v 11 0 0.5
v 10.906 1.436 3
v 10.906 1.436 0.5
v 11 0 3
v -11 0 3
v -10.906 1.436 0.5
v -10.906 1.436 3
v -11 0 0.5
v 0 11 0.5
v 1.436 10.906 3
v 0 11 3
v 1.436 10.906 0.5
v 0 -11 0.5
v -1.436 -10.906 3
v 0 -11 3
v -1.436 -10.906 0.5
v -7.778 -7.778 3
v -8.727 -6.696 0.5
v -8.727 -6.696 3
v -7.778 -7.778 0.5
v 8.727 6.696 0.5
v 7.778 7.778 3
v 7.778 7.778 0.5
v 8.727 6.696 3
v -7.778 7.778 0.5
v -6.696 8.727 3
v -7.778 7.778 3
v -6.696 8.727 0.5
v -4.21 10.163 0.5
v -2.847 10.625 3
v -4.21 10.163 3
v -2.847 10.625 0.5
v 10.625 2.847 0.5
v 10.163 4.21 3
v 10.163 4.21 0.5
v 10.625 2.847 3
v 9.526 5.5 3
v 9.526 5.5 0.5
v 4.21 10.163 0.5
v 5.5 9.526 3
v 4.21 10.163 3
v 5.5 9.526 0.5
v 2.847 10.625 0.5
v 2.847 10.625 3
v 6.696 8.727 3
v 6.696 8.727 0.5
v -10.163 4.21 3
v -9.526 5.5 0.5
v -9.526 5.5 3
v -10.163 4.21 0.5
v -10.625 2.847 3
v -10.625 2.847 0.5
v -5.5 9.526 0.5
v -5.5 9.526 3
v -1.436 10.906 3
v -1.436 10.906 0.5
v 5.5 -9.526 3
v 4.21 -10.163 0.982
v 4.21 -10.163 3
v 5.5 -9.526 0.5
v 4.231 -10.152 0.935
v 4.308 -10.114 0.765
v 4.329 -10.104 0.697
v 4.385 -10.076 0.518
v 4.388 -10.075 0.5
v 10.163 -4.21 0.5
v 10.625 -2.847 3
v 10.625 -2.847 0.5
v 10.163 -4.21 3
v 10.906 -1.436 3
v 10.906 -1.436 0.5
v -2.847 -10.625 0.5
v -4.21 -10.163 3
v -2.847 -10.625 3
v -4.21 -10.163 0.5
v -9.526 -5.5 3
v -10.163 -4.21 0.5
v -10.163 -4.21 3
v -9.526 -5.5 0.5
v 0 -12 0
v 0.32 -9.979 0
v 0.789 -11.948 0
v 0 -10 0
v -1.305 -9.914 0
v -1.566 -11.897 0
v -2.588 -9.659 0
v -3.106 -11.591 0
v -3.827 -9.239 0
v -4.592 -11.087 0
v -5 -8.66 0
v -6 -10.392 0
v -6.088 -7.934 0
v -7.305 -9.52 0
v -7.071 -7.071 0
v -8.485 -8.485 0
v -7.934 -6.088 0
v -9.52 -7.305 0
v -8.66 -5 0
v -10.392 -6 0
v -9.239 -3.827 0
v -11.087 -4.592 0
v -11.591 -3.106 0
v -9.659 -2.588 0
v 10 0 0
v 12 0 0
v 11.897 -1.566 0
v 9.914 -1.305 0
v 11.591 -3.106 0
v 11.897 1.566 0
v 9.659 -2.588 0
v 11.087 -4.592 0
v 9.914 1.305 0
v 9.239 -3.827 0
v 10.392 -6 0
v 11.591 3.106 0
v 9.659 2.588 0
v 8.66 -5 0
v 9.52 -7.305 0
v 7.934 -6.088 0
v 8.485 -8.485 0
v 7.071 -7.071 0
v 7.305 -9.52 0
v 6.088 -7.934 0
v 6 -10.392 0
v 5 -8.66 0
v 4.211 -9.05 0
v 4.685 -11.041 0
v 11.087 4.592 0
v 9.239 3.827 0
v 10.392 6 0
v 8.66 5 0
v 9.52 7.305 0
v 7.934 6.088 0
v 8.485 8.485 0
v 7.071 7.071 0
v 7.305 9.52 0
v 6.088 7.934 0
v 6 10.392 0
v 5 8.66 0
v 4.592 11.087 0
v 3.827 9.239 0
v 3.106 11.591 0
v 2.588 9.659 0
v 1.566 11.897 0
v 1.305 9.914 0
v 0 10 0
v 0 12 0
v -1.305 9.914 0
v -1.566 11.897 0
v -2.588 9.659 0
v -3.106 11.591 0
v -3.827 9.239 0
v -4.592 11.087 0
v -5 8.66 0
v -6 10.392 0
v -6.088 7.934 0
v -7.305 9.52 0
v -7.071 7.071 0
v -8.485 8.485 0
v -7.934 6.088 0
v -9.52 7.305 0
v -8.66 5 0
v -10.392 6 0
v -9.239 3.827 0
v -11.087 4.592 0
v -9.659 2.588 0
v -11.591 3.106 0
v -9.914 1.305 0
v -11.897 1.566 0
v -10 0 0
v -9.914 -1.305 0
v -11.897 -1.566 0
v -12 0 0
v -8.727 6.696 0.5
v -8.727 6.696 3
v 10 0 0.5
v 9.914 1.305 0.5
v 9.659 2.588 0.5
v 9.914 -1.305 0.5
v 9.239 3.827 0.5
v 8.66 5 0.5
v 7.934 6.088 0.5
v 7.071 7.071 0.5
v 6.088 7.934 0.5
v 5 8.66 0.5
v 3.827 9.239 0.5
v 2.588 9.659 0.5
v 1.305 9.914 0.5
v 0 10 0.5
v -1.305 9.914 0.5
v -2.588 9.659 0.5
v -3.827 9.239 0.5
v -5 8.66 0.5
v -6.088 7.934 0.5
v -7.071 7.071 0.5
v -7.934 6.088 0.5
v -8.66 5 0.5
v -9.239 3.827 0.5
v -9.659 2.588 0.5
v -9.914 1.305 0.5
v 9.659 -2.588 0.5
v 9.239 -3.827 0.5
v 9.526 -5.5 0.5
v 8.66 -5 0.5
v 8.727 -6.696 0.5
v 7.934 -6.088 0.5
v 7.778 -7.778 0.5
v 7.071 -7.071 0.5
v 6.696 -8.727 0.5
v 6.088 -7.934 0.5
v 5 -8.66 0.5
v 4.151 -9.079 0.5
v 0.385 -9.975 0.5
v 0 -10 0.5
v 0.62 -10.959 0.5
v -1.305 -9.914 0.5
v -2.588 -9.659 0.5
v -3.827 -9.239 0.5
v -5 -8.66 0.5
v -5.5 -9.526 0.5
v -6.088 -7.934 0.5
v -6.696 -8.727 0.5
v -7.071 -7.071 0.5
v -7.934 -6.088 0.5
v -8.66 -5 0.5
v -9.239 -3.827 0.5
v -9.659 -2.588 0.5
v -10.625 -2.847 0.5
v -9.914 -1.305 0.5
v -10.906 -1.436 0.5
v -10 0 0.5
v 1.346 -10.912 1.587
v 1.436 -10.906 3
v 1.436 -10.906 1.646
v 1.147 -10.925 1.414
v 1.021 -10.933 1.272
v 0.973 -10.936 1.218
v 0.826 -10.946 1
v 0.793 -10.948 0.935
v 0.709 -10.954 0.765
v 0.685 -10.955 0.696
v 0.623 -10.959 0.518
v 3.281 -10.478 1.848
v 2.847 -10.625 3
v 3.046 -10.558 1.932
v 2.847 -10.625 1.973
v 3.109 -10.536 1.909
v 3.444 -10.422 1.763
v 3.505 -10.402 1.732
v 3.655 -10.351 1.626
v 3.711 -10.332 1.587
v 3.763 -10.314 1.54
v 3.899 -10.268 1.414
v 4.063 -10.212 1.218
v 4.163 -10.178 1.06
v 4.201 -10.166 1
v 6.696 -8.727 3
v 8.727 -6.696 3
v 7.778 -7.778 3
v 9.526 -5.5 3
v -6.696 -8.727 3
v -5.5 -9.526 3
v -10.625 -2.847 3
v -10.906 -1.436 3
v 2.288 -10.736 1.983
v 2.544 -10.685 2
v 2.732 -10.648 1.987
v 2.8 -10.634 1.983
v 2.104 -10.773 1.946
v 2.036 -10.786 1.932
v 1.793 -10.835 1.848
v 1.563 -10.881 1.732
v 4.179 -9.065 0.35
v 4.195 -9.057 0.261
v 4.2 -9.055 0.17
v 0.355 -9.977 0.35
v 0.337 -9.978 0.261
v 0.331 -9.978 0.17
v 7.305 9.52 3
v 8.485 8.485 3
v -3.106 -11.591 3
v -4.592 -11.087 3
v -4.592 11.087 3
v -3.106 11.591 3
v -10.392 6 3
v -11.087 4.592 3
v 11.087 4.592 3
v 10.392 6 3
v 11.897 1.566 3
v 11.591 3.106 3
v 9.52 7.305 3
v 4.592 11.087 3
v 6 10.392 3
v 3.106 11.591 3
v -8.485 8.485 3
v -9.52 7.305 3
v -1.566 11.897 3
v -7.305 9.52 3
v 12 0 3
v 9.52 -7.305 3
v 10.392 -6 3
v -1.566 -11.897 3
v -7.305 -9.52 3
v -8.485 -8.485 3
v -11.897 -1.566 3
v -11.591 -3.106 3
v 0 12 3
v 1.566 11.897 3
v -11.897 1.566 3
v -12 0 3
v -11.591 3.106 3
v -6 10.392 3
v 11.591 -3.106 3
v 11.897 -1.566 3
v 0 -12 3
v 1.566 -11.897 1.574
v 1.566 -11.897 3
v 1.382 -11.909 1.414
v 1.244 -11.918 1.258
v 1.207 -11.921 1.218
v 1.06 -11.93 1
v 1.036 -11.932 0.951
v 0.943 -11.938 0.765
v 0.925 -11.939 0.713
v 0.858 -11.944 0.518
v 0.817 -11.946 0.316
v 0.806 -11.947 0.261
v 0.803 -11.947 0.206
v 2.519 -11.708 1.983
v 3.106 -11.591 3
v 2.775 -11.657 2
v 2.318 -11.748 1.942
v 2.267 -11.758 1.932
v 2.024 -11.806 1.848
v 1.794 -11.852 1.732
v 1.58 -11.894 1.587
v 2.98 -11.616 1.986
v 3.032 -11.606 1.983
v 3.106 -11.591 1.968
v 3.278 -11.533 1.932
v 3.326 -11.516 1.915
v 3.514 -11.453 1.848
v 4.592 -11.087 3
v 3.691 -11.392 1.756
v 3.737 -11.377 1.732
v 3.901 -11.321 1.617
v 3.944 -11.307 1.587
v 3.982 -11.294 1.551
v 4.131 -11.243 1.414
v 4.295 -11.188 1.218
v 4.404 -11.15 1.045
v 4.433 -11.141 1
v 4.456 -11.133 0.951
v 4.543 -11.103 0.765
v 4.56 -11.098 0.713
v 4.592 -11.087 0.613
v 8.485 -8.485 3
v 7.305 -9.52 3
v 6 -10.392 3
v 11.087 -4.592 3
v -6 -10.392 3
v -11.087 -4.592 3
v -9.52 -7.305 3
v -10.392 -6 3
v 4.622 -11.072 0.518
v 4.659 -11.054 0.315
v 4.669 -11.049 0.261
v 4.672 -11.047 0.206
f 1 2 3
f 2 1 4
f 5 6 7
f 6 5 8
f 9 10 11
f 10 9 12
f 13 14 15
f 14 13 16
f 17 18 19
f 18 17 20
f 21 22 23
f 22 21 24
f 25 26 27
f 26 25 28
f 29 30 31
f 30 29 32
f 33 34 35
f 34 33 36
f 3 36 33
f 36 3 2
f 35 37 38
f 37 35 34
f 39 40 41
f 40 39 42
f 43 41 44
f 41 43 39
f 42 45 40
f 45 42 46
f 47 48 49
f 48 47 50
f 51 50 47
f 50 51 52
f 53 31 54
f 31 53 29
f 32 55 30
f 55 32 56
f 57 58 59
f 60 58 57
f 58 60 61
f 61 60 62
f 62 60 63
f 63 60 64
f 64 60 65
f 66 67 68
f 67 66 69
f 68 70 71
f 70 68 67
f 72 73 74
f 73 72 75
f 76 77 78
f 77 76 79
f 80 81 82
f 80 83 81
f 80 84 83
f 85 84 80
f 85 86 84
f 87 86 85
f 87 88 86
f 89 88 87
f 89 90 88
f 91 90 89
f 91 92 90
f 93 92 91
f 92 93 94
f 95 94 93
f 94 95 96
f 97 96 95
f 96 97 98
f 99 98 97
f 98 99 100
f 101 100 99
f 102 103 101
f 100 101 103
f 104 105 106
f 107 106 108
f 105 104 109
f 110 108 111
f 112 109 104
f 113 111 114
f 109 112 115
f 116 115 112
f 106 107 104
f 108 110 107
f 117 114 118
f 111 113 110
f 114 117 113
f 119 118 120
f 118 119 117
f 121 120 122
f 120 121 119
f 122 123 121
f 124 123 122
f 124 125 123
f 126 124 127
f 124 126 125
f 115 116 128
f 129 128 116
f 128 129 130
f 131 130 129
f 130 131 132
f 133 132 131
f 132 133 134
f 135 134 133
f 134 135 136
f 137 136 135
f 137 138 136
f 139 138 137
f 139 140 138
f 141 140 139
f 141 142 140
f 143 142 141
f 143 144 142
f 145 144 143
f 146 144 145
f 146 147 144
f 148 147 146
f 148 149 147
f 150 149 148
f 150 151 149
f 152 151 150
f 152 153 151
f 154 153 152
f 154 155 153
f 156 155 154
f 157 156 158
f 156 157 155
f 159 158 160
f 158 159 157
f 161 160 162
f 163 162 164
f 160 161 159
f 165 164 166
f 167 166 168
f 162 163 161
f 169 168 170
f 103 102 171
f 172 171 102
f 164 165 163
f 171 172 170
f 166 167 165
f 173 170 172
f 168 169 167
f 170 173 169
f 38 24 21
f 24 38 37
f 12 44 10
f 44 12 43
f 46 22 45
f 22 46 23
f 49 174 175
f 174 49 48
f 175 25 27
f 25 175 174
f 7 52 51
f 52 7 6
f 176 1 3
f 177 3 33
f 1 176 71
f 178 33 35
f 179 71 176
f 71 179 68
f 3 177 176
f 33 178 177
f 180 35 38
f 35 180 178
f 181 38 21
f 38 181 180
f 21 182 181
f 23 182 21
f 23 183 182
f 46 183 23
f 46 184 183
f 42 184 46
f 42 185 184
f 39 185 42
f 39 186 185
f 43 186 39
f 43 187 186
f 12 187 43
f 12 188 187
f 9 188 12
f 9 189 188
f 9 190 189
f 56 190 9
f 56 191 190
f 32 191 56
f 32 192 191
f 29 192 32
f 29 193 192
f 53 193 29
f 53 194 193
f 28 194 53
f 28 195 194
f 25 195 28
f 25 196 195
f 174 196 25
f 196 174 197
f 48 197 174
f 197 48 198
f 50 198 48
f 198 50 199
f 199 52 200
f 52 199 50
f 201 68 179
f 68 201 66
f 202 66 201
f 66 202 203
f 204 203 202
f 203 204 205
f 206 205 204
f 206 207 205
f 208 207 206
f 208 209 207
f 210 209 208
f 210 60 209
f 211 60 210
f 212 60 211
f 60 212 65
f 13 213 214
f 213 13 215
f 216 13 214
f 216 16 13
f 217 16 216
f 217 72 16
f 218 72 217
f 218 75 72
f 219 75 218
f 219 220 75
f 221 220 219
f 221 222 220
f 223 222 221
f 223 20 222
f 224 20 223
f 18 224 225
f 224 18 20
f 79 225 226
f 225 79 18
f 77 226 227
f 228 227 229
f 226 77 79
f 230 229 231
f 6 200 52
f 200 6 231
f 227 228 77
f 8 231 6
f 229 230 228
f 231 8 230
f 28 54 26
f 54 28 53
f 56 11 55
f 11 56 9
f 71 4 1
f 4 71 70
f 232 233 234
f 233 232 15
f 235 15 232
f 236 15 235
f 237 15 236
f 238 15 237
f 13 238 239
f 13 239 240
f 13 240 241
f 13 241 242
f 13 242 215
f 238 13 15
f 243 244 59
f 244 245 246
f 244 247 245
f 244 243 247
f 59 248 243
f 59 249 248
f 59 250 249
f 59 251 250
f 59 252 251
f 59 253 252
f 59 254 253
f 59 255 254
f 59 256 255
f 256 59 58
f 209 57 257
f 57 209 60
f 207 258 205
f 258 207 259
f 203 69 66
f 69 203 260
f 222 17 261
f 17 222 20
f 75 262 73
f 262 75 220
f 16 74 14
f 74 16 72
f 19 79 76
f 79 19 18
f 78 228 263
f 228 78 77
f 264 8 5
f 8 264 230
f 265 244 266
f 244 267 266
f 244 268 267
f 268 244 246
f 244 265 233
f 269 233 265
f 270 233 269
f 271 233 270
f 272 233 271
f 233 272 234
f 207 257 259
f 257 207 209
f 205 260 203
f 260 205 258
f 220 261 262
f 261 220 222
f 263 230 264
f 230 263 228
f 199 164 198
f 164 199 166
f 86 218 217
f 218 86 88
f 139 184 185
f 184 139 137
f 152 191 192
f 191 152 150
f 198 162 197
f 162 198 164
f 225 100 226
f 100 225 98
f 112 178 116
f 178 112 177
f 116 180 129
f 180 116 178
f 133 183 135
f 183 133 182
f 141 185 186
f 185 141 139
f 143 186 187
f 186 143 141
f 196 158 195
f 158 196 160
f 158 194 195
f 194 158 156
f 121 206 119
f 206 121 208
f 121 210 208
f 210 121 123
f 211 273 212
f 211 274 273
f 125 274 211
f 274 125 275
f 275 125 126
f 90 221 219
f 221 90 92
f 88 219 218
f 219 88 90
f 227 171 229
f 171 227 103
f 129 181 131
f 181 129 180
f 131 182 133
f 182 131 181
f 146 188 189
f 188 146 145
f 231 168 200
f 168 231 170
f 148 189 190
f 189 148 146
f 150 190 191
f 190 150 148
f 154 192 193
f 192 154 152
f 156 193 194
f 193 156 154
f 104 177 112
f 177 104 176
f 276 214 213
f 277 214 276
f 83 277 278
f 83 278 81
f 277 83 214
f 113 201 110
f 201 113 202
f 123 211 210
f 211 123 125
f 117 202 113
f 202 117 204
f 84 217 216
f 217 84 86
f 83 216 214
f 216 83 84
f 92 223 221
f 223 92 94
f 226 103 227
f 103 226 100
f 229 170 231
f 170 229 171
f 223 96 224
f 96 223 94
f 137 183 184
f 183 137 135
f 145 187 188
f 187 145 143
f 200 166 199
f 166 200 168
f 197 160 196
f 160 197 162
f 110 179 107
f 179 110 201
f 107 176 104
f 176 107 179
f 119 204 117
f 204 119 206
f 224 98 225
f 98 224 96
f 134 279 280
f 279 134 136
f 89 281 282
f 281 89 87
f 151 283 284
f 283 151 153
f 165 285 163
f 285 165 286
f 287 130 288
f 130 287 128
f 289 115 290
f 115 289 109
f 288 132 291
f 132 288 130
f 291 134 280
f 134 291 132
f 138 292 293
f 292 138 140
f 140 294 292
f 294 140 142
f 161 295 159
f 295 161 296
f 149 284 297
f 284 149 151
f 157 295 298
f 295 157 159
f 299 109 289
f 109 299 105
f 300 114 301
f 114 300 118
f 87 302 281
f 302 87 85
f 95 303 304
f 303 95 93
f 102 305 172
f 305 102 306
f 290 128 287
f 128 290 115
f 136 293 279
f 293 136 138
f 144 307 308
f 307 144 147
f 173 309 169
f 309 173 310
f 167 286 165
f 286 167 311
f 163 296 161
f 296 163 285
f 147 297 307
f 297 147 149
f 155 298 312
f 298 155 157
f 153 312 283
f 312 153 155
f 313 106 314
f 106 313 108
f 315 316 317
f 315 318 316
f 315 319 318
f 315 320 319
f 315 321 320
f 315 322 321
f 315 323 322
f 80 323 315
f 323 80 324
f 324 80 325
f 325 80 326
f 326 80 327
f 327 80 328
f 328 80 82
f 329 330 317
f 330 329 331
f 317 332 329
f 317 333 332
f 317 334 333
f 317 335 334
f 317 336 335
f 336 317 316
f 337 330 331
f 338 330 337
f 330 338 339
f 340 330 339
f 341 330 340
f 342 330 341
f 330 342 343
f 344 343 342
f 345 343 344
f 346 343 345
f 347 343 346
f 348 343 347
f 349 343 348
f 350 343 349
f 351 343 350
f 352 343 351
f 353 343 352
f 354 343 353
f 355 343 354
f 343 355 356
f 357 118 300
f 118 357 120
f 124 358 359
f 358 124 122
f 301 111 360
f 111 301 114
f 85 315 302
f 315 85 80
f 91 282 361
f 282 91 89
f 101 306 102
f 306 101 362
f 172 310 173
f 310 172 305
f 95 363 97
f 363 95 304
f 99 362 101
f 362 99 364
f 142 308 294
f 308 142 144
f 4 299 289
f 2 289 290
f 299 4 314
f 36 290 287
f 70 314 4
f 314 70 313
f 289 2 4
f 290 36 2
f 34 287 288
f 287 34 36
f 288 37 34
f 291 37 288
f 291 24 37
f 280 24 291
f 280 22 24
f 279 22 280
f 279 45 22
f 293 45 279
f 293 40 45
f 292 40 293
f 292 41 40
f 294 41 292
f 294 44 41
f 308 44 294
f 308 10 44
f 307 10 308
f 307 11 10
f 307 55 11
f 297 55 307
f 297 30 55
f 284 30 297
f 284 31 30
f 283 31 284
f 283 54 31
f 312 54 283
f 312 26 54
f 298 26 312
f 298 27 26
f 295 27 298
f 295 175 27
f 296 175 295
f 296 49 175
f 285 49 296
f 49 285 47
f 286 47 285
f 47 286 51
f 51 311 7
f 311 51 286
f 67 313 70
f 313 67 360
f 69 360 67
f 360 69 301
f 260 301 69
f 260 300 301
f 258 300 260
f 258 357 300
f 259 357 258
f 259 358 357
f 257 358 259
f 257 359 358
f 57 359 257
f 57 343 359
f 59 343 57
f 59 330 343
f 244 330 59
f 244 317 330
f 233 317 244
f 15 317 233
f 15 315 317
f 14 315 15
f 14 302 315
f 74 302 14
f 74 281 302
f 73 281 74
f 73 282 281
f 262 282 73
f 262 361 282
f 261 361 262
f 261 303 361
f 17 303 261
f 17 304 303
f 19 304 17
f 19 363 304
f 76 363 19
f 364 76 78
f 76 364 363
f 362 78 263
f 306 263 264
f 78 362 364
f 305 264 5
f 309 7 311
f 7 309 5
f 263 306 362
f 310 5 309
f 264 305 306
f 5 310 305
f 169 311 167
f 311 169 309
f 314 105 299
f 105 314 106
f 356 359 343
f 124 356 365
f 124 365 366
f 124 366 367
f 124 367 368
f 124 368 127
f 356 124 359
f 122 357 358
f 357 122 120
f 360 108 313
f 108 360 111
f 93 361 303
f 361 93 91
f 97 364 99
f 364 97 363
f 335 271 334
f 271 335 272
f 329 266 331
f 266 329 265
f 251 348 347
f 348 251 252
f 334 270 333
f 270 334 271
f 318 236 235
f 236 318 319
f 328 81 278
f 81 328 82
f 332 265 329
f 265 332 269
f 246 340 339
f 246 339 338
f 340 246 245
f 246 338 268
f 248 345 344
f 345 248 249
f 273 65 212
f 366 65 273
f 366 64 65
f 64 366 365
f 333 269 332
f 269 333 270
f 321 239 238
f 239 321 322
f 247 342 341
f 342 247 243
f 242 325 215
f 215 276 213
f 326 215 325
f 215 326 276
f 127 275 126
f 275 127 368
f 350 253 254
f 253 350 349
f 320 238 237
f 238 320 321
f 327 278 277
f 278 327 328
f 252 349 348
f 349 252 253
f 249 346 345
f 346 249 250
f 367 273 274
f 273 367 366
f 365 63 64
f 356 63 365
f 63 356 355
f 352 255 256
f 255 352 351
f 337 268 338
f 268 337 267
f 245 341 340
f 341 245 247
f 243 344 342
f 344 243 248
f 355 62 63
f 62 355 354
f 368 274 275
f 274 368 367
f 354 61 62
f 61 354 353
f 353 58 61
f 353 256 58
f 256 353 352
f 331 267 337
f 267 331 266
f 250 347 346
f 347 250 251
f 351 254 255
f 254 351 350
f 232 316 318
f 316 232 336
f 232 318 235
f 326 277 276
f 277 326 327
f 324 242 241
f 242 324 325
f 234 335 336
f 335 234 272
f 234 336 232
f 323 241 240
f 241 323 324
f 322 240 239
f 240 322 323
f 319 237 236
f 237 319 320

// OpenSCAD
// file: ../build_environments.scad
// build_environments.scad: modules to build level sections
//

module pool(diameter=10.0, wall_height=2.0, step_width=3.0, connections=[])
{
    difference() {
        union() {
        difference() {
            cylinder(h=0.5,r1=diameter+step_width,r2=diameter+step_width,$fn=48);
            translate([0,0,-0.1])
                cylinder(h=0.7,r1=diameter,r2=diameter,$fn=48);
        }
        difference() {
            cylinder(h=wall_height,r1=diameter+step_width+1.0,r2=diameter+step_width+1.0,$fn=48);
            translate([0,0,-0.1])
                cylinder(h=wall_height+0.2,r1=diameter+step_width,r2=diameter+step_width,$fn=48);
        }
        }
    
        for (c = connections)
        {
            rotate([0,90,0]) {
                angle = atan2(c[1],c[0]);
                rotate([-angle,0,0]) {
                    cylinder(h=diameter+5.0,r1=c[2],r2=c[2],$fn=48);
                }
            }
        }
    }
}

module straight(length=10.0, width=2.0, dy1=0.0, dy2=0.0, dz=0.0)
{
    dims = [0, 0, 0, 0, 0, (dz/length)];
    matrix = [
        [ 1, dims[0], dims[1], 0 ],
        [ dims[2], 1, dims[4], 0 ],
        [ dims[5], dims[3], 1, 0 ],
        [ 0, 0, 0, 1 ]
    ];
    multmatrix(matrix)
    difference() {
        translate([dy1,0,0])
        union() {
            rotate([0,90,0]) {
                difference() {
                    cylinder(h=(length-dy1-dy2),r1=width+1.0,r2=width+1.0,$fn=24);
                    translate([0,0,-0.1])
                        cylinder(h=(length-dy1-dy2+0.2),r1=width,r2=width,$fn=24);
                }
                difference() {
                    cylinder(h=1.0,r1=width+2.0,r2=width+2.0,$fn=24);
                    translate([0,0,-0.1])
                        cylinder(h=1.2,r1=width,r2=width,$fn=24);
                }
                translate([0,0,(length-dy1-dy2)-1.0]) {
                    difference() {
                        cylinder(h=1.0,r1=width+2.0,r2=width+2.0,$fn=24);
                        translate([0,0,-0.1])
                            cylinder(h=1.2,r1=width,r2=width,$fn=24);
                    }
                }
            }
        }
        translate([0,0,-(2*width+4.0)/2])
            cube([3*length,3*length,2*width+4.0],center=true);
    }
}

module curve(p0=[0,0], center=[0,0], dir=1, angle=0.0, width=2.0)
{
    radius = sqrt((p0[0]-center[0])*(p0[0]-center[0]) + (p0[1]-center[1])*(p0[1]-center[1]));
    if (dir == 0) {
        difference() {
            rotate([0,0,-90])
            difference() {
                rotate_extrude(angle = angle, convexity = 10, $fn=32)
                    translate([radius, 0, 0])
                        circle(r = width+1.0,$fn=24);
                rotate([0,0,-1.0])
                    rotate_extrude(angle = angle+2.0, convexity = 10, $fn=32)
                        translate([radius, 0, 0])
                            circle(r = width,$fn=24);
            }
            translate([0,0,-(2*width+4.0)/2])
                cube([5*radius,5*radius,2*width+4.0],center=true);
        }
    }
    else {
        difference() {
            rotate([0,0,90])
            difference() {
                rotate_extrude(angle = -angle, convexity = 10, $fn=32)
                    translate([radius, 0, 0])
                        circle(r = width+1.0,$fn=24);
                rotate([0,0,1.0])
                    rotate_extrude(angle = -angle-2.0, convexity = 10, $fn=32)
                        translate([radius, 0, 0])
                            circle(r = width,$fn=24);
            }
            translate([0,0,-(2*width+4.0)/2])
                cube([5*radius,5*radius,2*width+4.0],center=true);
        }
    }

}

// test pool
//pool(diameter=12.0000, wall_height=3.0000, step_width=3.0000, connections=[[0.0000,-26.0000,2.0000], [23.6074,0.0000,2.0000]]);

// test straight, slope
//straight(length=26.0000, width=2.0000, dy1=11.8322, dy2=6.7082, dz=0.0000);
//straight(length=29.1549, width=12.0000, dy1=0.0000, dy2=0.0000, dz=-15.0000);

// test curve
//curve(p0=[23.6074, 0.0000], center=[23.6074, 5.0000], dir=0, angle=60.1011, width=2.0000);
//curve(p0=[33.6426, 12.4219], center=[37.9771, 9.9295], dir=1, angle=120.4627, width=2.0000);
// main file
use <../build_environments.scad>;
pool(diameter=10.0000, wall_height=3.0000, step_width=1.0000, connections=[[5.0000,-21.0000,2.0000]]);
